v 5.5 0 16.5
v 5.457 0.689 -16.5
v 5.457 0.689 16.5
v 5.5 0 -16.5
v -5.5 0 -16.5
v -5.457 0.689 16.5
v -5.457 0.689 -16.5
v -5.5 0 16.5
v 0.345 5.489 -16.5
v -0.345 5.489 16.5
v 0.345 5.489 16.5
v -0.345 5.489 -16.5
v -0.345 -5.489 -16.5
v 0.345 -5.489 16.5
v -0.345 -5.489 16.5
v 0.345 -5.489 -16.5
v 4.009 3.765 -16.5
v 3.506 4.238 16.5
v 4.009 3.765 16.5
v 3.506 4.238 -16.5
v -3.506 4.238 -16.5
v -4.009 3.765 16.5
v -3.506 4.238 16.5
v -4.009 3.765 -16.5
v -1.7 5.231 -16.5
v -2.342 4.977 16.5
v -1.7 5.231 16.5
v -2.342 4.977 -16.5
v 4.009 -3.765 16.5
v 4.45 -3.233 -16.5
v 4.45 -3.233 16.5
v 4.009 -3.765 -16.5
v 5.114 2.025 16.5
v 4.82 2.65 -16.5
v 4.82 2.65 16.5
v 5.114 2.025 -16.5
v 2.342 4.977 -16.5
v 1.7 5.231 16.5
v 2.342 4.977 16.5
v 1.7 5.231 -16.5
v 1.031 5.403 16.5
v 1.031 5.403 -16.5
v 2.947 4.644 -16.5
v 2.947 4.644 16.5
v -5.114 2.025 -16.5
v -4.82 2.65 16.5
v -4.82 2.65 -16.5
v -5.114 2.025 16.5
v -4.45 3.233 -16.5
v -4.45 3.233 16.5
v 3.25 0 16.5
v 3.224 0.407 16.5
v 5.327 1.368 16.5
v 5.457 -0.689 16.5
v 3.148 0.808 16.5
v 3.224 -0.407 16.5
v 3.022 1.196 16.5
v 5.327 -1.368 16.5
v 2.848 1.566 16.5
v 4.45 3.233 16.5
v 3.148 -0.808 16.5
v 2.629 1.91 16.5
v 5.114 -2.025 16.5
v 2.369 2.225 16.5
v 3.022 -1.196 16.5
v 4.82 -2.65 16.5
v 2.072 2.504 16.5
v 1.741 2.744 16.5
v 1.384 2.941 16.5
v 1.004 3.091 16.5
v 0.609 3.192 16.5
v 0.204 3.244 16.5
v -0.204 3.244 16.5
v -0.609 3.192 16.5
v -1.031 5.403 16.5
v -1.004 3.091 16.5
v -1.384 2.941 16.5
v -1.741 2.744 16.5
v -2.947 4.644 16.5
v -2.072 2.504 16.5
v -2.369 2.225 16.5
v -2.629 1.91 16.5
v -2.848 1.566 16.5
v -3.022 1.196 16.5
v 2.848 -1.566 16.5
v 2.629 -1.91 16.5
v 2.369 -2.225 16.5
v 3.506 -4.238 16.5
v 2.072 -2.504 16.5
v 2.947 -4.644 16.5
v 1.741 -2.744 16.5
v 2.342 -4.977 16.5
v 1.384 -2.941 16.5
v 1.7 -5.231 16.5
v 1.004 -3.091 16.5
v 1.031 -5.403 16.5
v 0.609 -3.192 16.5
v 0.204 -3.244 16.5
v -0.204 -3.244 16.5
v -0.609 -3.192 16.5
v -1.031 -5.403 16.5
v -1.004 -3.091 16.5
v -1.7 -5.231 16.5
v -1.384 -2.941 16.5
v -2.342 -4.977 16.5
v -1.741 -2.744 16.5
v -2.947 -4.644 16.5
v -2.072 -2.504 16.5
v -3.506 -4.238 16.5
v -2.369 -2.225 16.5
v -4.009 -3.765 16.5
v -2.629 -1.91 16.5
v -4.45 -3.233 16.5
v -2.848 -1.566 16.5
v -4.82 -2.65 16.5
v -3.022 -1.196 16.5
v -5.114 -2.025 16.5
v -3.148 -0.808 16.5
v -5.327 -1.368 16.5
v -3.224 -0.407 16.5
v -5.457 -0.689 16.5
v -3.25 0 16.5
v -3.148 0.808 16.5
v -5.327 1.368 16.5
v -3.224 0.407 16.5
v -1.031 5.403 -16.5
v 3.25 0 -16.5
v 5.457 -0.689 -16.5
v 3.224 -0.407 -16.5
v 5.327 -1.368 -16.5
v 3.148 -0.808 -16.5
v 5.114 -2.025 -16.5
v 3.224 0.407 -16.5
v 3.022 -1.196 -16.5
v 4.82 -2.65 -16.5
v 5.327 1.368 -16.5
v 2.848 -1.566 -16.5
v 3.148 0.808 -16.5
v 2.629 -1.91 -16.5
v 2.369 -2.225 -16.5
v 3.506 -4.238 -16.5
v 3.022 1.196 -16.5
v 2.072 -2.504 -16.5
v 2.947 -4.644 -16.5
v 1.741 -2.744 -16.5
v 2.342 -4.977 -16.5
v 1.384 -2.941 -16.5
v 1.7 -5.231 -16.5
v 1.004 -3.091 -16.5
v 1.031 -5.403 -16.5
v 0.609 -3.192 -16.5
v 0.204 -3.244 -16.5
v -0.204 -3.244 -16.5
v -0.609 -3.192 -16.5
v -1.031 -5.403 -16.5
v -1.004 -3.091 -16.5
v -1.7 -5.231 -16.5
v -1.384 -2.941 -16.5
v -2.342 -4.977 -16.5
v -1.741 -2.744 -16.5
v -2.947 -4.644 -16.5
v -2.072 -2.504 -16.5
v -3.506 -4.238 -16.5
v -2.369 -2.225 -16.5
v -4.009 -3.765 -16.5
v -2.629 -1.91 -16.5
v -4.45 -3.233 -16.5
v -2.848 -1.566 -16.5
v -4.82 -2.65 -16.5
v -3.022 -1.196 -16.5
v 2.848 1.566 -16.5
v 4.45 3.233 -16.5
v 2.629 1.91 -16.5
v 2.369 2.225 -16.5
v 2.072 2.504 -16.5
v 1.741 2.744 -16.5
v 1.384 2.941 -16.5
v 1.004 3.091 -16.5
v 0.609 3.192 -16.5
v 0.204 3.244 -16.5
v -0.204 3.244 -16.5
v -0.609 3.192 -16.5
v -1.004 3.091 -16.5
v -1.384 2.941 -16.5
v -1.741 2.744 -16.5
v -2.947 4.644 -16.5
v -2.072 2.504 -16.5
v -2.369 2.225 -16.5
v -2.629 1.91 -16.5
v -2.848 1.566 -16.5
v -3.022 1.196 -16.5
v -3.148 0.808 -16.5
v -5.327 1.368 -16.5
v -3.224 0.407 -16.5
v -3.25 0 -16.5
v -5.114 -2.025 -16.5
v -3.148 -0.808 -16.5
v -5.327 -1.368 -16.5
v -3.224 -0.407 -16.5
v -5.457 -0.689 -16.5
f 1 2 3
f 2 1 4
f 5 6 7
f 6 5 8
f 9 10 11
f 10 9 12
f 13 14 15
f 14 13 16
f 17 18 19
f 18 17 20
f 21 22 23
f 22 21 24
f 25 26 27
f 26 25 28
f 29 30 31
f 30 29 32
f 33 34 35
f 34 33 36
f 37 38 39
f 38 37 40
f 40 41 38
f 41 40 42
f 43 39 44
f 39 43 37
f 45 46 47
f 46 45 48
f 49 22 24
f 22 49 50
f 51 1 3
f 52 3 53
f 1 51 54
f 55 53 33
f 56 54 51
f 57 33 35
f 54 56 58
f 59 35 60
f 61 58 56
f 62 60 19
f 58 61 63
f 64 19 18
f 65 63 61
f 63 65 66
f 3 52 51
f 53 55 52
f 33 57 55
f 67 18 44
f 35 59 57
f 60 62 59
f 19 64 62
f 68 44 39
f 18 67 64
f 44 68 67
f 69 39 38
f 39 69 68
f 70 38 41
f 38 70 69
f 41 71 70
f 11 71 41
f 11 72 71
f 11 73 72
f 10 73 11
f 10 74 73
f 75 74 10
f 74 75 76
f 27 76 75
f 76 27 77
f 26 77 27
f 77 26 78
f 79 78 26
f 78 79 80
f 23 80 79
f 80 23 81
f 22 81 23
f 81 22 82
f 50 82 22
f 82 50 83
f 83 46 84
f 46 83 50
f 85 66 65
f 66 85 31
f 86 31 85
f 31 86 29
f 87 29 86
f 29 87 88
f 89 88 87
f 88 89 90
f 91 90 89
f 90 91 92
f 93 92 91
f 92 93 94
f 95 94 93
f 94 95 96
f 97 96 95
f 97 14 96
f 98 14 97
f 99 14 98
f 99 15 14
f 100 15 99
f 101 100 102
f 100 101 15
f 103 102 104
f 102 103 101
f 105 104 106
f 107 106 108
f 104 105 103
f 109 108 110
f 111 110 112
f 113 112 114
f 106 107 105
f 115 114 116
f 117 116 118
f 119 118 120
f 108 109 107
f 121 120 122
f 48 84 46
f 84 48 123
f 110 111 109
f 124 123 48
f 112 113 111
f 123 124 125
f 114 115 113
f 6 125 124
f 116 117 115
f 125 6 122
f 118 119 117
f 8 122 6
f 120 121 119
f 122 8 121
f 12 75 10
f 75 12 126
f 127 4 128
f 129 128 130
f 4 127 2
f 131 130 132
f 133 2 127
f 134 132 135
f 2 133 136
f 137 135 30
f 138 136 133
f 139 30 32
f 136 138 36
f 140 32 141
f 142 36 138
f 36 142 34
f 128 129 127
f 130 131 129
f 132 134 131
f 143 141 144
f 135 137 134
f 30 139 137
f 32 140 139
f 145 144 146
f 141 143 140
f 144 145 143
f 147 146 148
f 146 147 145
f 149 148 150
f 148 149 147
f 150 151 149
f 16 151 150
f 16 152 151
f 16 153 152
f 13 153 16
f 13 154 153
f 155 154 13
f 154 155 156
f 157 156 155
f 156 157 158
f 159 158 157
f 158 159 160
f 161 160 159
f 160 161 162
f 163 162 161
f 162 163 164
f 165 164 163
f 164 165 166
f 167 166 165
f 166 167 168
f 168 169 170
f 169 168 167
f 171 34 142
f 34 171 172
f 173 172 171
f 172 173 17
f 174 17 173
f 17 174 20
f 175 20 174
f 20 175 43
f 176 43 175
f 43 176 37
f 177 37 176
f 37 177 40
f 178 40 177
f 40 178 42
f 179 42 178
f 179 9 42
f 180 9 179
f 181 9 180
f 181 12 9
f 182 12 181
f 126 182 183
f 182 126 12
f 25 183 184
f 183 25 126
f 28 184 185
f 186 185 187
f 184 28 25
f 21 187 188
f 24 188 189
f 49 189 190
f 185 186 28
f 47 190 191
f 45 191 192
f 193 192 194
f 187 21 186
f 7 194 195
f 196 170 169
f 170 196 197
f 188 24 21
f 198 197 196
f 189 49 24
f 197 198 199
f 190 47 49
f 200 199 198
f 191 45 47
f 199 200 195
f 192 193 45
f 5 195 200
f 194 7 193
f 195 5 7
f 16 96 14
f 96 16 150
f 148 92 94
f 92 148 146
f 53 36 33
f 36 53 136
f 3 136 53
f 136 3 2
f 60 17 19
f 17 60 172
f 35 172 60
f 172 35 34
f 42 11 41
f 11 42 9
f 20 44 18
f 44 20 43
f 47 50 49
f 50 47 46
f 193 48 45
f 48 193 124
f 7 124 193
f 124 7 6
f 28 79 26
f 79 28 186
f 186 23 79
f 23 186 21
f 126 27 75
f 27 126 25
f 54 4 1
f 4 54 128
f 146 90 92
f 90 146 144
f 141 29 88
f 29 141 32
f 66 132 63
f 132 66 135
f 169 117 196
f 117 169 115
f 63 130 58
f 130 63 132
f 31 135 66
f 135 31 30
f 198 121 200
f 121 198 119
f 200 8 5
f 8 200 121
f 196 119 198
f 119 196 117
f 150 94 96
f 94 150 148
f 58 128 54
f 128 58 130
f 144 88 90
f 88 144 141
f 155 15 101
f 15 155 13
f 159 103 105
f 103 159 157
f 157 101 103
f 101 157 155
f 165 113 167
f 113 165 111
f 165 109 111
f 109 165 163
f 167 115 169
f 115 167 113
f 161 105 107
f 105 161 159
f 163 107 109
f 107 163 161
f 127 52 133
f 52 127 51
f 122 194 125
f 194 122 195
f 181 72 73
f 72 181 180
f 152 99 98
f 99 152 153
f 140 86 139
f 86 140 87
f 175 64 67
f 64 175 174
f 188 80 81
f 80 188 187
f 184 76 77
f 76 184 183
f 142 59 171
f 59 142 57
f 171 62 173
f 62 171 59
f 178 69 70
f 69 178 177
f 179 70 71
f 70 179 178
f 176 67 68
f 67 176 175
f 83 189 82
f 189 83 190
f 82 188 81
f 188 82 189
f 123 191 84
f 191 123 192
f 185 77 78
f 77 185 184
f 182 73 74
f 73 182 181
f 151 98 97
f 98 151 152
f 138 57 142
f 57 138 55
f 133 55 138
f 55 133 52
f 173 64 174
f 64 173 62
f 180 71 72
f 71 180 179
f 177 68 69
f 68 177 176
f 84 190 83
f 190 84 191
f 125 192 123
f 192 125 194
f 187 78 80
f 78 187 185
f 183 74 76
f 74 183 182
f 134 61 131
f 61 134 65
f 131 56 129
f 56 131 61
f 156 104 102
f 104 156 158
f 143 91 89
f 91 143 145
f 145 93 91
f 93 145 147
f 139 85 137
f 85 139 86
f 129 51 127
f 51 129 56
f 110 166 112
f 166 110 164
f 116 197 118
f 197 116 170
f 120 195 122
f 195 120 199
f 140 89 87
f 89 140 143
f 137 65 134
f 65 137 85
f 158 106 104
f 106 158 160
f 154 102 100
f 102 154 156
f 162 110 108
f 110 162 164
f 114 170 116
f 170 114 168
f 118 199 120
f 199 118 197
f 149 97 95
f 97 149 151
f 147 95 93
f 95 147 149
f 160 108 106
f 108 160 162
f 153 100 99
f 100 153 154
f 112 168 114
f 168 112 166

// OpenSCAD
$fn = 50;


difference() {
	union() {
		translate(v = [0, 0, -16.5000000000]) {
			cylinder(h = 33, r = 5.5000000000);
		}
	}
	union() {
		translate(v = [0, 0, -100.0000000000]) {
			cylinder(h = 200, r = 3.2500000000);
		}
	}
}
